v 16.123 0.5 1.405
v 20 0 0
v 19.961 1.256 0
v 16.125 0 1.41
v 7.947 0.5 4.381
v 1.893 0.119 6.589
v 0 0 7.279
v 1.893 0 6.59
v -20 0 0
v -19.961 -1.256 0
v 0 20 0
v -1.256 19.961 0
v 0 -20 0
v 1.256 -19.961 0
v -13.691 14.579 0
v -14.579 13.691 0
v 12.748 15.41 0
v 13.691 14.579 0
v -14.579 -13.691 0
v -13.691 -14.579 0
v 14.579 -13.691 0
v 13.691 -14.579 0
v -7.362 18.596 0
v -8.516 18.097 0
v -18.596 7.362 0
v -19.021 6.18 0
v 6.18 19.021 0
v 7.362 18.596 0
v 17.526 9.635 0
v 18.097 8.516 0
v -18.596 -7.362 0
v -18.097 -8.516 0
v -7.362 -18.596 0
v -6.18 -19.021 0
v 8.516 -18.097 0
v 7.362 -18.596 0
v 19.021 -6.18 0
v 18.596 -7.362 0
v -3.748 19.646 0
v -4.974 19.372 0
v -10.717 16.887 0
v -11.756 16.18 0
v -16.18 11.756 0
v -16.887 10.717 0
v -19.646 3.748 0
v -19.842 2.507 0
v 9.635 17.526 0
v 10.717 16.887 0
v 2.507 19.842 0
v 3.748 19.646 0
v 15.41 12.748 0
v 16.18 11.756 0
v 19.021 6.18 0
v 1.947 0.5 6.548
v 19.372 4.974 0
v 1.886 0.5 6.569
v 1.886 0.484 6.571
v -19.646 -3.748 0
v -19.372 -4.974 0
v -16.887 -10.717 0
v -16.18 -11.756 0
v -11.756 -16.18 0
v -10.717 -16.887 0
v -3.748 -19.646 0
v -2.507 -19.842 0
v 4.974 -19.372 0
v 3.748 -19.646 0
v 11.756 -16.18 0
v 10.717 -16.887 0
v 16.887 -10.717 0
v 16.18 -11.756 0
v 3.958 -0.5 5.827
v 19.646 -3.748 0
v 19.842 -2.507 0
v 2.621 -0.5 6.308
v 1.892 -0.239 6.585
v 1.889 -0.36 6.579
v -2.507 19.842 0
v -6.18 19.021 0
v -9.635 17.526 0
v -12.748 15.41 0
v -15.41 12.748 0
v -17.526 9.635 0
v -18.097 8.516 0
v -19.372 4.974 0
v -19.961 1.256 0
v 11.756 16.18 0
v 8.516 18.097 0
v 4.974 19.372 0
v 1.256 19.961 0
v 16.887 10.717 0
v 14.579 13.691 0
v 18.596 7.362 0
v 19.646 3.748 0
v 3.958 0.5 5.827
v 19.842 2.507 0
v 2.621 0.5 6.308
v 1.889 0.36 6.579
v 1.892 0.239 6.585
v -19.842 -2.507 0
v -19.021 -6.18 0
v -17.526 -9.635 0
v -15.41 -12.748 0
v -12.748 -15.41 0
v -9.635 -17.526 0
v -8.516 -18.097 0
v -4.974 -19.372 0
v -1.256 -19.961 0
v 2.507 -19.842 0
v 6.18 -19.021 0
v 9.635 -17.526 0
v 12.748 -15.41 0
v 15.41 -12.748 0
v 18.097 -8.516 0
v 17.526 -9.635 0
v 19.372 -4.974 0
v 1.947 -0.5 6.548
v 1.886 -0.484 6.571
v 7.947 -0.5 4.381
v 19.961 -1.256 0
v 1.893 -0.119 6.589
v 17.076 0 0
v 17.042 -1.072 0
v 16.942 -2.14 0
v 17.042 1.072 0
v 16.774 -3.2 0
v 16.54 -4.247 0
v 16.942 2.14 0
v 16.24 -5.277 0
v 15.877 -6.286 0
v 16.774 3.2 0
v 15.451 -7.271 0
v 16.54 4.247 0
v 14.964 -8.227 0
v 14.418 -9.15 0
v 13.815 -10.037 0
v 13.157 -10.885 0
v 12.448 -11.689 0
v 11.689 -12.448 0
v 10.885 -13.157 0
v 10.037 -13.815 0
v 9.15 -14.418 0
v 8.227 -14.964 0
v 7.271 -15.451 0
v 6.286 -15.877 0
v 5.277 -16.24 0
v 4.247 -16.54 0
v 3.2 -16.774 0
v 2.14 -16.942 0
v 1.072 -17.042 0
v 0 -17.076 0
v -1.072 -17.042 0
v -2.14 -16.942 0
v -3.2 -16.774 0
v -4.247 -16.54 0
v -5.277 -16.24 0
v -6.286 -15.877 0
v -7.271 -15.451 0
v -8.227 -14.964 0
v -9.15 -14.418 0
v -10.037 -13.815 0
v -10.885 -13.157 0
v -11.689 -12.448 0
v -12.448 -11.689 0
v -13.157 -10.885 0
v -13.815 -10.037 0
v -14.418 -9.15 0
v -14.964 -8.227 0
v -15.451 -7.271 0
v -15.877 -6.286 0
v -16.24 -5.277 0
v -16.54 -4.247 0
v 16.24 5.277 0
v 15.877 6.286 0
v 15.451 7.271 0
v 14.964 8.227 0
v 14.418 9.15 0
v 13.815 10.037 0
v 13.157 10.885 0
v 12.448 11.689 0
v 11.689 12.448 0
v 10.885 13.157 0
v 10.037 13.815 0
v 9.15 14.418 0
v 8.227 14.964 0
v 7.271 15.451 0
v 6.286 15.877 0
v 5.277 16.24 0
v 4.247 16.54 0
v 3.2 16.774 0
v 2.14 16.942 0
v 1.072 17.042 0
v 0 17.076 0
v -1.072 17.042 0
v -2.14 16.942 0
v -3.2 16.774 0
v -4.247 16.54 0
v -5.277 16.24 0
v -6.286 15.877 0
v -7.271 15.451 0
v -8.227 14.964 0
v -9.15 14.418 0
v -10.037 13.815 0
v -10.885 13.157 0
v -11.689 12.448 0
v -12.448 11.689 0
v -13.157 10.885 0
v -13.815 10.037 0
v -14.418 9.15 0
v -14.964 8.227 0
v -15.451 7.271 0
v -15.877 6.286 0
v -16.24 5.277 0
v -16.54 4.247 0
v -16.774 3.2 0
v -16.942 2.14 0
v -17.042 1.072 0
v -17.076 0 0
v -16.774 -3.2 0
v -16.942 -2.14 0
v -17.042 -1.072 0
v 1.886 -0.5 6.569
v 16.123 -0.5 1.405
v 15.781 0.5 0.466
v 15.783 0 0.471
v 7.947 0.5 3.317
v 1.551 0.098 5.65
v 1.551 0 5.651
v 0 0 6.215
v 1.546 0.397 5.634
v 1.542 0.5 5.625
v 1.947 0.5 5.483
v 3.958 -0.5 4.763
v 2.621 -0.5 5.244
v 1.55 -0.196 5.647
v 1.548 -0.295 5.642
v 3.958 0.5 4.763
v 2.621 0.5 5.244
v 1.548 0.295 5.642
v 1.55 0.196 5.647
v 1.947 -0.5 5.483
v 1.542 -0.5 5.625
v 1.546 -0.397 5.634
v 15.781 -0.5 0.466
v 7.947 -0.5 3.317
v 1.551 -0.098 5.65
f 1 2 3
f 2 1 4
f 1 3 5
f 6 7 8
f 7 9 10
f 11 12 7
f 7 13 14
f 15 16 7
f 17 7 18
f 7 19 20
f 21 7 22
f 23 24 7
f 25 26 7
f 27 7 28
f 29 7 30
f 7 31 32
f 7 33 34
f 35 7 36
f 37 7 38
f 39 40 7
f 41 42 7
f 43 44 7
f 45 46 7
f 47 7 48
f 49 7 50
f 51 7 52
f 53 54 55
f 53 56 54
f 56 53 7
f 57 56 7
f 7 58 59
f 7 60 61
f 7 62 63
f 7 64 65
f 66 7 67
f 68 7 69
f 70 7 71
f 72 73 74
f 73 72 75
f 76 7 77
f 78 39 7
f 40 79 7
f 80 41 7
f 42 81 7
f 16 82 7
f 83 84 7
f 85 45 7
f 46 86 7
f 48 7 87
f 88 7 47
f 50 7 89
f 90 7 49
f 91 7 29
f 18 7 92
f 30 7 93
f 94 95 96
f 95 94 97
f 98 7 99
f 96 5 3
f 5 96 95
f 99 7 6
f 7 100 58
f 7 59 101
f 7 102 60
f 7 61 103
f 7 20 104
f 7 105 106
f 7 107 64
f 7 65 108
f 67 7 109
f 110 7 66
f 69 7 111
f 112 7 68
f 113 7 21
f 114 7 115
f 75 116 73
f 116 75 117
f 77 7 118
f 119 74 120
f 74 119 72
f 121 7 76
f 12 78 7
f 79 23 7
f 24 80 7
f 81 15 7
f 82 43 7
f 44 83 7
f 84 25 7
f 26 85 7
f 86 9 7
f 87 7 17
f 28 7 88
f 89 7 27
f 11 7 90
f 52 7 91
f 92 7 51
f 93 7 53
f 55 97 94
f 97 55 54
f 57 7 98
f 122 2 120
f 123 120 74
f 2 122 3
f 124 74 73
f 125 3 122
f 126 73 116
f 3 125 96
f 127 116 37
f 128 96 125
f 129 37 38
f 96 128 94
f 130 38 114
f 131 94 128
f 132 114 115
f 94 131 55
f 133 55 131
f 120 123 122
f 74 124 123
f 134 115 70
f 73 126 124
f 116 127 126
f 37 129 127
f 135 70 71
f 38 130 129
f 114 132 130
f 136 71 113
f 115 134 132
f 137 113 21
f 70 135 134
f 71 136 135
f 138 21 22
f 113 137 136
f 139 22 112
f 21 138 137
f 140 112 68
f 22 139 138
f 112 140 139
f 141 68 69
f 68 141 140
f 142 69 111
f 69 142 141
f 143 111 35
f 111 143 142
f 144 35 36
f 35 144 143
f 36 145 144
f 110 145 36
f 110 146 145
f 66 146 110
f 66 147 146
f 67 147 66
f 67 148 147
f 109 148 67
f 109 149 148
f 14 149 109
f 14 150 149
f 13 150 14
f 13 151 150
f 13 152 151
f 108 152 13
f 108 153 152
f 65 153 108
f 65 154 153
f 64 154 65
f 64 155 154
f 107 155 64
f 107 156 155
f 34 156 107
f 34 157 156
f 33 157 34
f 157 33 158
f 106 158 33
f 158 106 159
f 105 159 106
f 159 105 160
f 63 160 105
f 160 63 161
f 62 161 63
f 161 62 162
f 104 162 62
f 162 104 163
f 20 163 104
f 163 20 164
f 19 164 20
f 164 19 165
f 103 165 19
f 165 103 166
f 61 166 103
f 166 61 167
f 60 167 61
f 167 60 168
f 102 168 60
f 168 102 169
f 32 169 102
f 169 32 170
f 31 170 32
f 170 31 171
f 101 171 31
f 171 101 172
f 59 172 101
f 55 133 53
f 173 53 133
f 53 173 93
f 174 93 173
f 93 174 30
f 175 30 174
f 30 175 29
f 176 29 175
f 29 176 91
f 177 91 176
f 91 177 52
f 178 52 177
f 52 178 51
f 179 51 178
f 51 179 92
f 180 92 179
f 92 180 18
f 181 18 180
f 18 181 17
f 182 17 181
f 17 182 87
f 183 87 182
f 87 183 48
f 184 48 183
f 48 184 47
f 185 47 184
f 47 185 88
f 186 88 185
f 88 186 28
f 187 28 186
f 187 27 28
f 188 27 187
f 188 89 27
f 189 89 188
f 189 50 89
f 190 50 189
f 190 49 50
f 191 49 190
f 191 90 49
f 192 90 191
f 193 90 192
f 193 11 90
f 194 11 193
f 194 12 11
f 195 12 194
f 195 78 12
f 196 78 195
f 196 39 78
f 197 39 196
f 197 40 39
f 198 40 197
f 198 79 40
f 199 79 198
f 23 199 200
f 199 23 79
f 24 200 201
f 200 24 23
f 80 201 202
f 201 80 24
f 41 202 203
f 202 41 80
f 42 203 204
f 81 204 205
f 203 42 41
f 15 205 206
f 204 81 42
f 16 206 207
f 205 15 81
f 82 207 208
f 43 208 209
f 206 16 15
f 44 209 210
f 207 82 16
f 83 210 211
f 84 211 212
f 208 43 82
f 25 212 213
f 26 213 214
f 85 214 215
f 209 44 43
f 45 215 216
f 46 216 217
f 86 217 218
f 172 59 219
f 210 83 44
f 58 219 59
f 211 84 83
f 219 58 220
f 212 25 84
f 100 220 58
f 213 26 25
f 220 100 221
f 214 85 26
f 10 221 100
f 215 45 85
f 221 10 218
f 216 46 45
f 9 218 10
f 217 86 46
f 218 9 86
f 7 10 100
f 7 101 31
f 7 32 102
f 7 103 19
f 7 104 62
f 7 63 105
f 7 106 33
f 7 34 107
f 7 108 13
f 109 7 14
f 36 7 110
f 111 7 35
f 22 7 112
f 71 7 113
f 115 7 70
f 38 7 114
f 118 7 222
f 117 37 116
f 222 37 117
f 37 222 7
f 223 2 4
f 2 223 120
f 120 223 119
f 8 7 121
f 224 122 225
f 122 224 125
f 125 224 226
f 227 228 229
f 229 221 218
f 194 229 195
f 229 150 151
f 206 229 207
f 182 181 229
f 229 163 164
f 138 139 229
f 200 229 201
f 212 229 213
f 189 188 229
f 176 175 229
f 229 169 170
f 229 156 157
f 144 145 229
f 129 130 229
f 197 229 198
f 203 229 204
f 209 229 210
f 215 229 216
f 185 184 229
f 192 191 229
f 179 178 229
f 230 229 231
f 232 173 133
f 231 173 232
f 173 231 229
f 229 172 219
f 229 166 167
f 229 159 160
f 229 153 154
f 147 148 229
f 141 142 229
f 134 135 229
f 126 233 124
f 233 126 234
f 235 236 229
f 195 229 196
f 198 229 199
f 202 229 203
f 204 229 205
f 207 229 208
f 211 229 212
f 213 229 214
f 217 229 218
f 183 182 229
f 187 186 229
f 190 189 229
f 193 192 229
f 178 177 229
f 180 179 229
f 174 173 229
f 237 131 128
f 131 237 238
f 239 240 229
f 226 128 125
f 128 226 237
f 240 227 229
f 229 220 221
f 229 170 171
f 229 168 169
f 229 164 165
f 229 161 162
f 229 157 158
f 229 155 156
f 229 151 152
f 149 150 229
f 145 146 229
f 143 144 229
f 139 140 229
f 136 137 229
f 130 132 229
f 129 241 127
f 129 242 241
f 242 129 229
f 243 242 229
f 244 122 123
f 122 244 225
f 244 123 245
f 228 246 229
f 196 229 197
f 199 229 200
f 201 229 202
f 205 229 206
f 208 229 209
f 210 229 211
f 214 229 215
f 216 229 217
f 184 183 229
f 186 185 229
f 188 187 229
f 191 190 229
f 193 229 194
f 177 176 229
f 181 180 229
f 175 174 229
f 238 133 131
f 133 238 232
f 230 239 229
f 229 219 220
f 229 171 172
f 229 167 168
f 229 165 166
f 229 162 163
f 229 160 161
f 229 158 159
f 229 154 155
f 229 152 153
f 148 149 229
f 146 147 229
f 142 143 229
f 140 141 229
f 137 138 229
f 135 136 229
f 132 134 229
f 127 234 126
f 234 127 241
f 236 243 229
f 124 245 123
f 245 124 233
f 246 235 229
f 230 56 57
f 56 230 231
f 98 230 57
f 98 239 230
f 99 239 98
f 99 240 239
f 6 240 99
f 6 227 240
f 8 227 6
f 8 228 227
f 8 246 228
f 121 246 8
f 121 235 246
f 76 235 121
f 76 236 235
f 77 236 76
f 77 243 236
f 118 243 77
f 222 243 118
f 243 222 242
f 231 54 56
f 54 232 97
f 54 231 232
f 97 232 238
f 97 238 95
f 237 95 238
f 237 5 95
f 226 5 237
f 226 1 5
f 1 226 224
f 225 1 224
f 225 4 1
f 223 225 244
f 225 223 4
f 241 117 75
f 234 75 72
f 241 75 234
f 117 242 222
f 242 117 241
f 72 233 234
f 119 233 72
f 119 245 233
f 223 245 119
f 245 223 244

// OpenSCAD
// ----- ----- ----- Declaração de Variáveis ----- ----- ----- //
res=100;
folga=0.125;

rCone=20;
theta=70;
altCone=rCone/tan(theta);
esp=1;
x_esp=esp/sin(theta);
y_esp=esp/sin(90-theta);
menos=5.5;

bx=2.5*esp;
by=1;
aux=(rCone-esp/2)^2+(altCone-esp/2)^2;
bz=sqrt(aux);

// ----- ----- ----- Declaração de Funções ----- ----- ----- //

// ----- ----- ----- MAIN ----- ----- ----- //
difference(){
    cylinder(altCone,rCone,0,$fn=res);
    #cylinder(altCone-x_esp,rCone-y_esp,0,$fn=res);
    #translate([-(menos/2)*sin(theta),0,(menos/2)*cos(theta)])
    #translate([rCone-y_esp/2,0,0])
    #rotate([0,-theta,0])
    #translate([-bx/2,-by/2,0])
    #cube([bx,by,bz-menos]);
}
